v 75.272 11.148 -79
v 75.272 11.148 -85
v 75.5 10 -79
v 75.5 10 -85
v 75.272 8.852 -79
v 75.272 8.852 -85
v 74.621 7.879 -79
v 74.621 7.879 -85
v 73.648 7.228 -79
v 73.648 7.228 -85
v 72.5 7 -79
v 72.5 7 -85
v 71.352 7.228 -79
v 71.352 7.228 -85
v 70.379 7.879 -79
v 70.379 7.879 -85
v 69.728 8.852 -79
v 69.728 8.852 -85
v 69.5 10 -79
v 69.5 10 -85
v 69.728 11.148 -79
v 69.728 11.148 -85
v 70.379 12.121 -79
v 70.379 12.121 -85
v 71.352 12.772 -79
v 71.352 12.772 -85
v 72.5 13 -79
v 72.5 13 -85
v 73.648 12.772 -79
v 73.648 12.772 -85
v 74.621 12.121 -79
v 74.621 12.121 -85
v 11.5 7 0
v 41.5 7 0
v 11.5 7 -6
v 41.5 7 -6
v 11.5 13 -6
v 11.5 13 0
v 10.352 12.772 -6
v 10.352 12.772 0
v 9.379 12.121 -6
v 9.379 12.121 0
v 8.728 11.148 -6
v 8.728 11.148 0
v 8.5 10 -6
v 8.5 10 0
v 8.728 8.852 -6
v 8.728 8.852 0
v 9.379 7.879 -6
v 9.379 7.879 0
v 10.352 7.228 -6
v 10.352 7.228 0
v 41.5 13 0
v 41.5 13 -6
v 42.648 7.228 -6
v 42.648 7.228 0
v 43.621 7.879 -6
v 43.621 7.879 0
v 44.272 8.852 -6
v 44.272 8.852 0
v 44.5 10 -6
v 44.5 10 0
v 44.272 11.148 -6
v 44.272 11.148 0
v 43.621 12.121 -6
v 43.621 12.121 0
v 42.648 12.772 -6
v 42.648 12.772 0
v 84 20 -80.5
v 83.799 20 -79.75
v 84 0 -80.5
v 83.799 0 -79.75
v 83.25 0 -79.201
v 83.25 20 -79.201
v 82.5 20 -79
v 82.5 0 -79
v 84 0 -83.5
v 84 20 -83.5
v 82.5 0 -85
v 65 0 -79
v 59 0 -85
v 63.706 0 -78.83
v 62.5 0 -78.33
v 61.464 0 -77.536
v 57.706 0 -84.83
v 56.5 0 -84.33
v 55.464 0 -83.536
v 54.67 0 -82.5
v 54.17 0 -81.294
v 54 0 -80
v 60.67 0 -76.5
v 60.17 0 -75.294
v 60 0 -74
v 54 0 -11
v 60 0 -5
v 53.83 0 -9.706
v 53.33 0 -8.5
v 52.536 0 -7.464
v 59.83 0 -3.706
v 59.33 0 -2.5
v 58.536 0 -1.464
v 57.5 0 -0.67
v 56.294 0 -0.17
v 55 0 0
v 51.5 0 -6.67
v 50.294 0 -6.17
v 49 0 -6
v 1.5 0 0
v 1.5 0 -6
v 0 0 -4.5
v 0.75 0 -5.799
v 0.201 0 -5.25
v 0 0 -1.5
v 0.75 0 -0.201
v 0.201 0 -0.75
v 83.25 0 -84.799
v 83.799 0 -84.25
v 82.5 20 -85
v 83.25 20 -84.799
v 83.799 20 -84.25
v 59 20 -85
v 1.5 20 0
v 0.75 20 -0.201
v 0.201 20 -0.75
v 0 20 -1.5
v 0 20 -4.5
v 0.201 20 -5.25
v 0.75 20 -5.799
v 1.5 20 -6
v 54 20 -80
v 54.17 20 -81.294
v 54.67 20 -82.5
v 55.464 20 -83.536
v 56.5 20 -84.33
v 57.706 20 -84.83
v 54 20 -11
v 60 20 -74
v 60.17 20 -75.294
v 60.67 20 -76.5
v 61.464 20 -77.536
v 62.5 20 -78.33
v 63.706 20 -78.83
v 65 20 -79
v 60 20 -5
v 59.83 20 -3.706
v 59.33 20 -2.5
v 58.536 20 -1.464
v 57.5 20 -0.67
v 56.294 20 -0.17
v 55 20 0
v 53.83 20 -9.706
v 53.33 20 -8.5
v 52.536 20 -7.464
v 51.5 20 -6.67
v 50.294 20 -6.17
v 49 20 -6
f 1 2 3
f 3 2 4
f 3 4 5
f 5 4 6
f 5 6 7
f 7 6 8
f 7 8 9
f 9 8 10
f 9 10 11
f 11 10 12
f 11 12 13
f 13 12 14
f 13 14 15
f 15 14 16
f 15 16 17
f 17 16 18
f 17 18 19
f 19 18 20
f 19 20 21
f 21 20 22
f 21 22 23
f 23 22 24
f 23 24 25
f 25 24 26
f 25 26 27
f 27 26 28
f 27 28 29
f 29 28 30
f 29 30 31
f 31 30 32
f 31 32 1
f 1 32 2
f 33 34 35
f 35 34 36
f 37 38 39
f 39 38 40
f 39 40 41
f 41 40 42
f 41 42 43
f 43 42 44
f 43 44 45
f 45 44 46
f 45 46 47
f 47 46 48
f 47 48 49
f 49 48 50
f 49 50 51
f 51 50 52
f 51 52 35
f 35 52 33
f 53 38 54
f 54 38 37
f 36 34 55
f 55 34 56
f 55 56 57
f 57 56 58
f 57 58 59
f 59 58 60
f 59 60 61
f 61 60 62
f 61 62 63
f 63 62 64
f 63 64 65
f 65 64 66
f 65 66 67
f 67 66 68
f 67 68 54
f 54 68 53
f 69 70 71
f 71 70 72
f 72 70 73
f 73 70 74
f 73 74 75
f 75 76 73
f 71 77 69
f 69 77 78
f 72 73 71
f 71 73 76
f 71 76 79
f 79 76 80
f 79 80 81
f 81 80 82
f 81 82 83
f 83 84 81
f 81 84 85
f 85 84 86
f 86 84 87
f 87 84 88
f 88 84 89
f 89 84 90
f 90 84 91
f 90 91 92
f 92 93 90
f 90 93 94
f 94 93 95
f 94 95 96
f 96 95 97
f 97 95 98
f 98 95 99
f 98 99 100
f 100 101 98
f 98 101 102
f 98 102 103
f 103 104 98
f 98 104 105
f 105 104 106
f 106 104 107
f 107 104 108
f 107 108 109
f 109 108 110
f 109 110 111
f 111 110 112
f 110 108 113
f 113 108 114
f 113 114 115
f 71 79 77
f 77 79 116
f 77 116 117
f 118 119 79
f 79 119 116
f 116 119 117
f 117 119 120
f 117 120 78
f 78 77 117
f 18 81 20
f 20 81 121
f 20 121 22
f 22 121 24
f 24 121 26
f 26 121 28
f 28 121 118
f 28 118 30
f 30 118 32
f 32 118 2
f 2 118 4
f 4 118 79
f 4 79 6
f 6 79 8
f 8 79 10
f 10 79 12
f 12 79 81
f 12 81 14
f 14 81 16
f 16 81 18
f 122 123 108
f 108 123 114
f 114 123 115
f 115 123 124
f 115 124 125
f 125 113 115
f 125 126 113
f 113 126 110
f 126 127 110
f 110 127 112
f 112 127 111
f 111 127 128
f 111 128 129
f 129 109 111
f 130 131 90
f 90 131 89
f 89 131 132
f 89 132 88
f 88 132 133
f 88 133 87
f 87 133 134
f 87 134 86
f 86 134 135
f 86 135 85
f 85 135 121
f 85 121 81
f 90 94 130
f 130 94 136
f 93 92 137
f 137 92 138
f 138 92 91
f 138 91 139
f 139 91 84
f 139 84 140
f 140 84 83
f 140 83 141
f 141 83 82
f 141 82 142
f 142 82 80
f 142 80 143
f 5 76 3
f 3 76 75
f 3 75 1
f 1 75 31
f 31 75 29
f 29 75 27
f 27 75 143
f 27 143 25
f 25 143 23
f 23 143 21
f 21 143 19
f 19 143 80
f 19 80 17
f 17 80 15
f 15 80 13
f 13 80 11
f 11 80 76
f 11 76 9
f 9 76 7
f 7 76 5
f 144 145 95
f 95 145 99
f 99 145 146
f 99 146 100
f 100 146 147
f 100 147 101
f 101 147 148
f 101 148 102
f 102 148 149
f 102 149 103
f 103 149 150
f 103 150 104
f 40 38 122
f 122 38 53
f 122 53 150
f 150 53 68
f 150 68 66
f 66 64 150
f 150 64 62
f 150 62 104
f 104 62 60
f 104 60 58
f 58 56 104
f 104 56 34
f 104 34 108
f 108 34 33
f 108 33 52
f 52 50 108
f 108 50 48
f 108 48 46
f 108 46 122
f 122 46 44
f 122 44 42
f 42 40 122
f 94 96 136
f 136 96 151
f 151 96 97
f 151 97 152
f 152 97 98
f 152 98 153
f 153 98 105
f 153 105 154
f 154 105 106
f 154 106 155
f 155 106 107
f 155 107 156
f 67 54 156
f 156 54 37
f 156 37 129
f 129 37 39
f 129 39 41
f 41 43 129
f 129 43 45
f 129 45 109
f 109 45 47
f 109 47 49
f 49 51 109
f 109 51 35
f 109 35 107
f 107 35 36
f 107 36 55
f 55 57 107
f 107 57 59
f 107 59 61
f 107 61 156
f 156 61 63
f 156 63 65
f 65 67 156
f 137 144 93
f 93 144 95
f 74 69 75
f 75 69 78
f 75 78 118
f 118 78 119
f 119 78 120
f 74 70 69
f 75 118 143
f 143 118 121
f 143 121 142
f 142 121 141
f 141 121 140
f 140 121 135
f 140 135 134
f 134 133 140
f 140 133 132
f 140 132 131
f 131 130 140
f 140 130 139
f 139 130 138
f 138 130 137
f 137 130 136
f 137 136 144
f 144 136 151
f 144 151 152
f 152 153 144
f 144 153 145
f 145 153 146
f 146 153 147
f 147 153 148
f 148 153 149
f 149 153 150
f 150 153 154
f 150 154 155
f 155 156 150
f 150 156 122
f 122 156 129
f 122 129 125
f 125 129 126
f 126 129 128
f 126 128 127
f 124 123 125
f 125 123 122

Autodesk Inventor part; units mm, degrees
ref_plane "YZ Plane" through (0, 0, 0) normal (1, 0, 0) x (0, 1, 0)
ref_plane "XZ Plane" through (0, 0, 0) normal (0, 1, 0) x (-1, 0, 0)
ref_plane "XY Plane" through (0, 0, 0) normal (0, 0, 1) x (1, 0, 0)
sketch "Sketch1" plane through (0, 0, 0) normal (0, 1, 0) x (-1, 0, 0)
  line L0 (0, 0) -> (-60, 0)
  line L1 (-60, 0) -> (-60, -6)
  line L2 (-60, -6) -> (0, -6)
  line L3 (0, -6) -> (0, 0)
  line L4 (-60, 0) -> (-54, 0)
  line L5 (-54, 0) -> (-54, -85)
  line L6 (-54, -85) -> (-60, -85)
  line L7 (-60, -85) -> (-60, 0)
  line L8 (-54, -85) -> (-84, -85)
  line L9 (-84, -85) -> (-84, -79)
  line L10 (-84, -79) -> (-54, -79)
  line L11 (-54, -79) -> (-54, -85)
  point P0 (-60, -79)
  point P1 (-54, -6)
  dimension "d2" = 60
  dimension "d3" = 6
  dimension "d4" = 6
  dimension "d5" = 85
  dimension "d6" = 30
  dimension "d7" = 6
extrude "Extrusion1" add sketch "Sketch1" along normal blind 20
fillet "Fillet1" radius 5 4 edges at (54, 10, -6) (60, 10, 0) (60, 10, -79) (54, 10, -85)
fillet "Fillet2" radius 1.5 4 edges at (0, 10, -6) (0, 10, 0) (84, 10, -85) (84, 10, -79)
sketch "Sketch2" plane through (49, 0, -6) normal (0, 0, -1) x (-1, 0, 0)
  line L0 (47.5, 0) -> (47.5, 20) projected
  line L1 (47.5, 10) -> (22.5, 10)
  line L2 (0, 0) -> (0, 20) projected
  line L3 (7.5, 10) -> (37.5, 10) construction
  line L4 (7.5, 7) -> (37.5, 7)
  line L5 (37.5, 13) -> (7.5, 13)
  arc A0 (7.5, 13) -> (7.5, 7) centre (7.5, 10) ccw
  arc A1 (37.5, 7) -> (37.5, 13) centre (37.5, 10) ccw
  point P0 (49, 0)
  dimension "d12" = 25
  dimension "d13" = 15
  dimension "d14" = 6
extrude "Extrusion2" cut sketch "Sketch2" against normal through all
sketch "Sketch3" plane through (59, 0, -85) normal (0, 0, -1) x (-1, 0, 0)
  line L0 (-23.5, 0) -> (-23.5, 20) projected
  line L1 (-23.5, 10) -> (-13.5, 10)
  line L2 (0, 20) -> (0, 0) projected
  circle A0 centre (-13.5, 10) radius 3
  point P0 (59, 0)
  dimension "d17" = 10
  dimension "d18" = 6
extrude "Extrusion3" cut sketch "Sketch3" against normal through all
properties part number "PowerBrick_Clamp"
